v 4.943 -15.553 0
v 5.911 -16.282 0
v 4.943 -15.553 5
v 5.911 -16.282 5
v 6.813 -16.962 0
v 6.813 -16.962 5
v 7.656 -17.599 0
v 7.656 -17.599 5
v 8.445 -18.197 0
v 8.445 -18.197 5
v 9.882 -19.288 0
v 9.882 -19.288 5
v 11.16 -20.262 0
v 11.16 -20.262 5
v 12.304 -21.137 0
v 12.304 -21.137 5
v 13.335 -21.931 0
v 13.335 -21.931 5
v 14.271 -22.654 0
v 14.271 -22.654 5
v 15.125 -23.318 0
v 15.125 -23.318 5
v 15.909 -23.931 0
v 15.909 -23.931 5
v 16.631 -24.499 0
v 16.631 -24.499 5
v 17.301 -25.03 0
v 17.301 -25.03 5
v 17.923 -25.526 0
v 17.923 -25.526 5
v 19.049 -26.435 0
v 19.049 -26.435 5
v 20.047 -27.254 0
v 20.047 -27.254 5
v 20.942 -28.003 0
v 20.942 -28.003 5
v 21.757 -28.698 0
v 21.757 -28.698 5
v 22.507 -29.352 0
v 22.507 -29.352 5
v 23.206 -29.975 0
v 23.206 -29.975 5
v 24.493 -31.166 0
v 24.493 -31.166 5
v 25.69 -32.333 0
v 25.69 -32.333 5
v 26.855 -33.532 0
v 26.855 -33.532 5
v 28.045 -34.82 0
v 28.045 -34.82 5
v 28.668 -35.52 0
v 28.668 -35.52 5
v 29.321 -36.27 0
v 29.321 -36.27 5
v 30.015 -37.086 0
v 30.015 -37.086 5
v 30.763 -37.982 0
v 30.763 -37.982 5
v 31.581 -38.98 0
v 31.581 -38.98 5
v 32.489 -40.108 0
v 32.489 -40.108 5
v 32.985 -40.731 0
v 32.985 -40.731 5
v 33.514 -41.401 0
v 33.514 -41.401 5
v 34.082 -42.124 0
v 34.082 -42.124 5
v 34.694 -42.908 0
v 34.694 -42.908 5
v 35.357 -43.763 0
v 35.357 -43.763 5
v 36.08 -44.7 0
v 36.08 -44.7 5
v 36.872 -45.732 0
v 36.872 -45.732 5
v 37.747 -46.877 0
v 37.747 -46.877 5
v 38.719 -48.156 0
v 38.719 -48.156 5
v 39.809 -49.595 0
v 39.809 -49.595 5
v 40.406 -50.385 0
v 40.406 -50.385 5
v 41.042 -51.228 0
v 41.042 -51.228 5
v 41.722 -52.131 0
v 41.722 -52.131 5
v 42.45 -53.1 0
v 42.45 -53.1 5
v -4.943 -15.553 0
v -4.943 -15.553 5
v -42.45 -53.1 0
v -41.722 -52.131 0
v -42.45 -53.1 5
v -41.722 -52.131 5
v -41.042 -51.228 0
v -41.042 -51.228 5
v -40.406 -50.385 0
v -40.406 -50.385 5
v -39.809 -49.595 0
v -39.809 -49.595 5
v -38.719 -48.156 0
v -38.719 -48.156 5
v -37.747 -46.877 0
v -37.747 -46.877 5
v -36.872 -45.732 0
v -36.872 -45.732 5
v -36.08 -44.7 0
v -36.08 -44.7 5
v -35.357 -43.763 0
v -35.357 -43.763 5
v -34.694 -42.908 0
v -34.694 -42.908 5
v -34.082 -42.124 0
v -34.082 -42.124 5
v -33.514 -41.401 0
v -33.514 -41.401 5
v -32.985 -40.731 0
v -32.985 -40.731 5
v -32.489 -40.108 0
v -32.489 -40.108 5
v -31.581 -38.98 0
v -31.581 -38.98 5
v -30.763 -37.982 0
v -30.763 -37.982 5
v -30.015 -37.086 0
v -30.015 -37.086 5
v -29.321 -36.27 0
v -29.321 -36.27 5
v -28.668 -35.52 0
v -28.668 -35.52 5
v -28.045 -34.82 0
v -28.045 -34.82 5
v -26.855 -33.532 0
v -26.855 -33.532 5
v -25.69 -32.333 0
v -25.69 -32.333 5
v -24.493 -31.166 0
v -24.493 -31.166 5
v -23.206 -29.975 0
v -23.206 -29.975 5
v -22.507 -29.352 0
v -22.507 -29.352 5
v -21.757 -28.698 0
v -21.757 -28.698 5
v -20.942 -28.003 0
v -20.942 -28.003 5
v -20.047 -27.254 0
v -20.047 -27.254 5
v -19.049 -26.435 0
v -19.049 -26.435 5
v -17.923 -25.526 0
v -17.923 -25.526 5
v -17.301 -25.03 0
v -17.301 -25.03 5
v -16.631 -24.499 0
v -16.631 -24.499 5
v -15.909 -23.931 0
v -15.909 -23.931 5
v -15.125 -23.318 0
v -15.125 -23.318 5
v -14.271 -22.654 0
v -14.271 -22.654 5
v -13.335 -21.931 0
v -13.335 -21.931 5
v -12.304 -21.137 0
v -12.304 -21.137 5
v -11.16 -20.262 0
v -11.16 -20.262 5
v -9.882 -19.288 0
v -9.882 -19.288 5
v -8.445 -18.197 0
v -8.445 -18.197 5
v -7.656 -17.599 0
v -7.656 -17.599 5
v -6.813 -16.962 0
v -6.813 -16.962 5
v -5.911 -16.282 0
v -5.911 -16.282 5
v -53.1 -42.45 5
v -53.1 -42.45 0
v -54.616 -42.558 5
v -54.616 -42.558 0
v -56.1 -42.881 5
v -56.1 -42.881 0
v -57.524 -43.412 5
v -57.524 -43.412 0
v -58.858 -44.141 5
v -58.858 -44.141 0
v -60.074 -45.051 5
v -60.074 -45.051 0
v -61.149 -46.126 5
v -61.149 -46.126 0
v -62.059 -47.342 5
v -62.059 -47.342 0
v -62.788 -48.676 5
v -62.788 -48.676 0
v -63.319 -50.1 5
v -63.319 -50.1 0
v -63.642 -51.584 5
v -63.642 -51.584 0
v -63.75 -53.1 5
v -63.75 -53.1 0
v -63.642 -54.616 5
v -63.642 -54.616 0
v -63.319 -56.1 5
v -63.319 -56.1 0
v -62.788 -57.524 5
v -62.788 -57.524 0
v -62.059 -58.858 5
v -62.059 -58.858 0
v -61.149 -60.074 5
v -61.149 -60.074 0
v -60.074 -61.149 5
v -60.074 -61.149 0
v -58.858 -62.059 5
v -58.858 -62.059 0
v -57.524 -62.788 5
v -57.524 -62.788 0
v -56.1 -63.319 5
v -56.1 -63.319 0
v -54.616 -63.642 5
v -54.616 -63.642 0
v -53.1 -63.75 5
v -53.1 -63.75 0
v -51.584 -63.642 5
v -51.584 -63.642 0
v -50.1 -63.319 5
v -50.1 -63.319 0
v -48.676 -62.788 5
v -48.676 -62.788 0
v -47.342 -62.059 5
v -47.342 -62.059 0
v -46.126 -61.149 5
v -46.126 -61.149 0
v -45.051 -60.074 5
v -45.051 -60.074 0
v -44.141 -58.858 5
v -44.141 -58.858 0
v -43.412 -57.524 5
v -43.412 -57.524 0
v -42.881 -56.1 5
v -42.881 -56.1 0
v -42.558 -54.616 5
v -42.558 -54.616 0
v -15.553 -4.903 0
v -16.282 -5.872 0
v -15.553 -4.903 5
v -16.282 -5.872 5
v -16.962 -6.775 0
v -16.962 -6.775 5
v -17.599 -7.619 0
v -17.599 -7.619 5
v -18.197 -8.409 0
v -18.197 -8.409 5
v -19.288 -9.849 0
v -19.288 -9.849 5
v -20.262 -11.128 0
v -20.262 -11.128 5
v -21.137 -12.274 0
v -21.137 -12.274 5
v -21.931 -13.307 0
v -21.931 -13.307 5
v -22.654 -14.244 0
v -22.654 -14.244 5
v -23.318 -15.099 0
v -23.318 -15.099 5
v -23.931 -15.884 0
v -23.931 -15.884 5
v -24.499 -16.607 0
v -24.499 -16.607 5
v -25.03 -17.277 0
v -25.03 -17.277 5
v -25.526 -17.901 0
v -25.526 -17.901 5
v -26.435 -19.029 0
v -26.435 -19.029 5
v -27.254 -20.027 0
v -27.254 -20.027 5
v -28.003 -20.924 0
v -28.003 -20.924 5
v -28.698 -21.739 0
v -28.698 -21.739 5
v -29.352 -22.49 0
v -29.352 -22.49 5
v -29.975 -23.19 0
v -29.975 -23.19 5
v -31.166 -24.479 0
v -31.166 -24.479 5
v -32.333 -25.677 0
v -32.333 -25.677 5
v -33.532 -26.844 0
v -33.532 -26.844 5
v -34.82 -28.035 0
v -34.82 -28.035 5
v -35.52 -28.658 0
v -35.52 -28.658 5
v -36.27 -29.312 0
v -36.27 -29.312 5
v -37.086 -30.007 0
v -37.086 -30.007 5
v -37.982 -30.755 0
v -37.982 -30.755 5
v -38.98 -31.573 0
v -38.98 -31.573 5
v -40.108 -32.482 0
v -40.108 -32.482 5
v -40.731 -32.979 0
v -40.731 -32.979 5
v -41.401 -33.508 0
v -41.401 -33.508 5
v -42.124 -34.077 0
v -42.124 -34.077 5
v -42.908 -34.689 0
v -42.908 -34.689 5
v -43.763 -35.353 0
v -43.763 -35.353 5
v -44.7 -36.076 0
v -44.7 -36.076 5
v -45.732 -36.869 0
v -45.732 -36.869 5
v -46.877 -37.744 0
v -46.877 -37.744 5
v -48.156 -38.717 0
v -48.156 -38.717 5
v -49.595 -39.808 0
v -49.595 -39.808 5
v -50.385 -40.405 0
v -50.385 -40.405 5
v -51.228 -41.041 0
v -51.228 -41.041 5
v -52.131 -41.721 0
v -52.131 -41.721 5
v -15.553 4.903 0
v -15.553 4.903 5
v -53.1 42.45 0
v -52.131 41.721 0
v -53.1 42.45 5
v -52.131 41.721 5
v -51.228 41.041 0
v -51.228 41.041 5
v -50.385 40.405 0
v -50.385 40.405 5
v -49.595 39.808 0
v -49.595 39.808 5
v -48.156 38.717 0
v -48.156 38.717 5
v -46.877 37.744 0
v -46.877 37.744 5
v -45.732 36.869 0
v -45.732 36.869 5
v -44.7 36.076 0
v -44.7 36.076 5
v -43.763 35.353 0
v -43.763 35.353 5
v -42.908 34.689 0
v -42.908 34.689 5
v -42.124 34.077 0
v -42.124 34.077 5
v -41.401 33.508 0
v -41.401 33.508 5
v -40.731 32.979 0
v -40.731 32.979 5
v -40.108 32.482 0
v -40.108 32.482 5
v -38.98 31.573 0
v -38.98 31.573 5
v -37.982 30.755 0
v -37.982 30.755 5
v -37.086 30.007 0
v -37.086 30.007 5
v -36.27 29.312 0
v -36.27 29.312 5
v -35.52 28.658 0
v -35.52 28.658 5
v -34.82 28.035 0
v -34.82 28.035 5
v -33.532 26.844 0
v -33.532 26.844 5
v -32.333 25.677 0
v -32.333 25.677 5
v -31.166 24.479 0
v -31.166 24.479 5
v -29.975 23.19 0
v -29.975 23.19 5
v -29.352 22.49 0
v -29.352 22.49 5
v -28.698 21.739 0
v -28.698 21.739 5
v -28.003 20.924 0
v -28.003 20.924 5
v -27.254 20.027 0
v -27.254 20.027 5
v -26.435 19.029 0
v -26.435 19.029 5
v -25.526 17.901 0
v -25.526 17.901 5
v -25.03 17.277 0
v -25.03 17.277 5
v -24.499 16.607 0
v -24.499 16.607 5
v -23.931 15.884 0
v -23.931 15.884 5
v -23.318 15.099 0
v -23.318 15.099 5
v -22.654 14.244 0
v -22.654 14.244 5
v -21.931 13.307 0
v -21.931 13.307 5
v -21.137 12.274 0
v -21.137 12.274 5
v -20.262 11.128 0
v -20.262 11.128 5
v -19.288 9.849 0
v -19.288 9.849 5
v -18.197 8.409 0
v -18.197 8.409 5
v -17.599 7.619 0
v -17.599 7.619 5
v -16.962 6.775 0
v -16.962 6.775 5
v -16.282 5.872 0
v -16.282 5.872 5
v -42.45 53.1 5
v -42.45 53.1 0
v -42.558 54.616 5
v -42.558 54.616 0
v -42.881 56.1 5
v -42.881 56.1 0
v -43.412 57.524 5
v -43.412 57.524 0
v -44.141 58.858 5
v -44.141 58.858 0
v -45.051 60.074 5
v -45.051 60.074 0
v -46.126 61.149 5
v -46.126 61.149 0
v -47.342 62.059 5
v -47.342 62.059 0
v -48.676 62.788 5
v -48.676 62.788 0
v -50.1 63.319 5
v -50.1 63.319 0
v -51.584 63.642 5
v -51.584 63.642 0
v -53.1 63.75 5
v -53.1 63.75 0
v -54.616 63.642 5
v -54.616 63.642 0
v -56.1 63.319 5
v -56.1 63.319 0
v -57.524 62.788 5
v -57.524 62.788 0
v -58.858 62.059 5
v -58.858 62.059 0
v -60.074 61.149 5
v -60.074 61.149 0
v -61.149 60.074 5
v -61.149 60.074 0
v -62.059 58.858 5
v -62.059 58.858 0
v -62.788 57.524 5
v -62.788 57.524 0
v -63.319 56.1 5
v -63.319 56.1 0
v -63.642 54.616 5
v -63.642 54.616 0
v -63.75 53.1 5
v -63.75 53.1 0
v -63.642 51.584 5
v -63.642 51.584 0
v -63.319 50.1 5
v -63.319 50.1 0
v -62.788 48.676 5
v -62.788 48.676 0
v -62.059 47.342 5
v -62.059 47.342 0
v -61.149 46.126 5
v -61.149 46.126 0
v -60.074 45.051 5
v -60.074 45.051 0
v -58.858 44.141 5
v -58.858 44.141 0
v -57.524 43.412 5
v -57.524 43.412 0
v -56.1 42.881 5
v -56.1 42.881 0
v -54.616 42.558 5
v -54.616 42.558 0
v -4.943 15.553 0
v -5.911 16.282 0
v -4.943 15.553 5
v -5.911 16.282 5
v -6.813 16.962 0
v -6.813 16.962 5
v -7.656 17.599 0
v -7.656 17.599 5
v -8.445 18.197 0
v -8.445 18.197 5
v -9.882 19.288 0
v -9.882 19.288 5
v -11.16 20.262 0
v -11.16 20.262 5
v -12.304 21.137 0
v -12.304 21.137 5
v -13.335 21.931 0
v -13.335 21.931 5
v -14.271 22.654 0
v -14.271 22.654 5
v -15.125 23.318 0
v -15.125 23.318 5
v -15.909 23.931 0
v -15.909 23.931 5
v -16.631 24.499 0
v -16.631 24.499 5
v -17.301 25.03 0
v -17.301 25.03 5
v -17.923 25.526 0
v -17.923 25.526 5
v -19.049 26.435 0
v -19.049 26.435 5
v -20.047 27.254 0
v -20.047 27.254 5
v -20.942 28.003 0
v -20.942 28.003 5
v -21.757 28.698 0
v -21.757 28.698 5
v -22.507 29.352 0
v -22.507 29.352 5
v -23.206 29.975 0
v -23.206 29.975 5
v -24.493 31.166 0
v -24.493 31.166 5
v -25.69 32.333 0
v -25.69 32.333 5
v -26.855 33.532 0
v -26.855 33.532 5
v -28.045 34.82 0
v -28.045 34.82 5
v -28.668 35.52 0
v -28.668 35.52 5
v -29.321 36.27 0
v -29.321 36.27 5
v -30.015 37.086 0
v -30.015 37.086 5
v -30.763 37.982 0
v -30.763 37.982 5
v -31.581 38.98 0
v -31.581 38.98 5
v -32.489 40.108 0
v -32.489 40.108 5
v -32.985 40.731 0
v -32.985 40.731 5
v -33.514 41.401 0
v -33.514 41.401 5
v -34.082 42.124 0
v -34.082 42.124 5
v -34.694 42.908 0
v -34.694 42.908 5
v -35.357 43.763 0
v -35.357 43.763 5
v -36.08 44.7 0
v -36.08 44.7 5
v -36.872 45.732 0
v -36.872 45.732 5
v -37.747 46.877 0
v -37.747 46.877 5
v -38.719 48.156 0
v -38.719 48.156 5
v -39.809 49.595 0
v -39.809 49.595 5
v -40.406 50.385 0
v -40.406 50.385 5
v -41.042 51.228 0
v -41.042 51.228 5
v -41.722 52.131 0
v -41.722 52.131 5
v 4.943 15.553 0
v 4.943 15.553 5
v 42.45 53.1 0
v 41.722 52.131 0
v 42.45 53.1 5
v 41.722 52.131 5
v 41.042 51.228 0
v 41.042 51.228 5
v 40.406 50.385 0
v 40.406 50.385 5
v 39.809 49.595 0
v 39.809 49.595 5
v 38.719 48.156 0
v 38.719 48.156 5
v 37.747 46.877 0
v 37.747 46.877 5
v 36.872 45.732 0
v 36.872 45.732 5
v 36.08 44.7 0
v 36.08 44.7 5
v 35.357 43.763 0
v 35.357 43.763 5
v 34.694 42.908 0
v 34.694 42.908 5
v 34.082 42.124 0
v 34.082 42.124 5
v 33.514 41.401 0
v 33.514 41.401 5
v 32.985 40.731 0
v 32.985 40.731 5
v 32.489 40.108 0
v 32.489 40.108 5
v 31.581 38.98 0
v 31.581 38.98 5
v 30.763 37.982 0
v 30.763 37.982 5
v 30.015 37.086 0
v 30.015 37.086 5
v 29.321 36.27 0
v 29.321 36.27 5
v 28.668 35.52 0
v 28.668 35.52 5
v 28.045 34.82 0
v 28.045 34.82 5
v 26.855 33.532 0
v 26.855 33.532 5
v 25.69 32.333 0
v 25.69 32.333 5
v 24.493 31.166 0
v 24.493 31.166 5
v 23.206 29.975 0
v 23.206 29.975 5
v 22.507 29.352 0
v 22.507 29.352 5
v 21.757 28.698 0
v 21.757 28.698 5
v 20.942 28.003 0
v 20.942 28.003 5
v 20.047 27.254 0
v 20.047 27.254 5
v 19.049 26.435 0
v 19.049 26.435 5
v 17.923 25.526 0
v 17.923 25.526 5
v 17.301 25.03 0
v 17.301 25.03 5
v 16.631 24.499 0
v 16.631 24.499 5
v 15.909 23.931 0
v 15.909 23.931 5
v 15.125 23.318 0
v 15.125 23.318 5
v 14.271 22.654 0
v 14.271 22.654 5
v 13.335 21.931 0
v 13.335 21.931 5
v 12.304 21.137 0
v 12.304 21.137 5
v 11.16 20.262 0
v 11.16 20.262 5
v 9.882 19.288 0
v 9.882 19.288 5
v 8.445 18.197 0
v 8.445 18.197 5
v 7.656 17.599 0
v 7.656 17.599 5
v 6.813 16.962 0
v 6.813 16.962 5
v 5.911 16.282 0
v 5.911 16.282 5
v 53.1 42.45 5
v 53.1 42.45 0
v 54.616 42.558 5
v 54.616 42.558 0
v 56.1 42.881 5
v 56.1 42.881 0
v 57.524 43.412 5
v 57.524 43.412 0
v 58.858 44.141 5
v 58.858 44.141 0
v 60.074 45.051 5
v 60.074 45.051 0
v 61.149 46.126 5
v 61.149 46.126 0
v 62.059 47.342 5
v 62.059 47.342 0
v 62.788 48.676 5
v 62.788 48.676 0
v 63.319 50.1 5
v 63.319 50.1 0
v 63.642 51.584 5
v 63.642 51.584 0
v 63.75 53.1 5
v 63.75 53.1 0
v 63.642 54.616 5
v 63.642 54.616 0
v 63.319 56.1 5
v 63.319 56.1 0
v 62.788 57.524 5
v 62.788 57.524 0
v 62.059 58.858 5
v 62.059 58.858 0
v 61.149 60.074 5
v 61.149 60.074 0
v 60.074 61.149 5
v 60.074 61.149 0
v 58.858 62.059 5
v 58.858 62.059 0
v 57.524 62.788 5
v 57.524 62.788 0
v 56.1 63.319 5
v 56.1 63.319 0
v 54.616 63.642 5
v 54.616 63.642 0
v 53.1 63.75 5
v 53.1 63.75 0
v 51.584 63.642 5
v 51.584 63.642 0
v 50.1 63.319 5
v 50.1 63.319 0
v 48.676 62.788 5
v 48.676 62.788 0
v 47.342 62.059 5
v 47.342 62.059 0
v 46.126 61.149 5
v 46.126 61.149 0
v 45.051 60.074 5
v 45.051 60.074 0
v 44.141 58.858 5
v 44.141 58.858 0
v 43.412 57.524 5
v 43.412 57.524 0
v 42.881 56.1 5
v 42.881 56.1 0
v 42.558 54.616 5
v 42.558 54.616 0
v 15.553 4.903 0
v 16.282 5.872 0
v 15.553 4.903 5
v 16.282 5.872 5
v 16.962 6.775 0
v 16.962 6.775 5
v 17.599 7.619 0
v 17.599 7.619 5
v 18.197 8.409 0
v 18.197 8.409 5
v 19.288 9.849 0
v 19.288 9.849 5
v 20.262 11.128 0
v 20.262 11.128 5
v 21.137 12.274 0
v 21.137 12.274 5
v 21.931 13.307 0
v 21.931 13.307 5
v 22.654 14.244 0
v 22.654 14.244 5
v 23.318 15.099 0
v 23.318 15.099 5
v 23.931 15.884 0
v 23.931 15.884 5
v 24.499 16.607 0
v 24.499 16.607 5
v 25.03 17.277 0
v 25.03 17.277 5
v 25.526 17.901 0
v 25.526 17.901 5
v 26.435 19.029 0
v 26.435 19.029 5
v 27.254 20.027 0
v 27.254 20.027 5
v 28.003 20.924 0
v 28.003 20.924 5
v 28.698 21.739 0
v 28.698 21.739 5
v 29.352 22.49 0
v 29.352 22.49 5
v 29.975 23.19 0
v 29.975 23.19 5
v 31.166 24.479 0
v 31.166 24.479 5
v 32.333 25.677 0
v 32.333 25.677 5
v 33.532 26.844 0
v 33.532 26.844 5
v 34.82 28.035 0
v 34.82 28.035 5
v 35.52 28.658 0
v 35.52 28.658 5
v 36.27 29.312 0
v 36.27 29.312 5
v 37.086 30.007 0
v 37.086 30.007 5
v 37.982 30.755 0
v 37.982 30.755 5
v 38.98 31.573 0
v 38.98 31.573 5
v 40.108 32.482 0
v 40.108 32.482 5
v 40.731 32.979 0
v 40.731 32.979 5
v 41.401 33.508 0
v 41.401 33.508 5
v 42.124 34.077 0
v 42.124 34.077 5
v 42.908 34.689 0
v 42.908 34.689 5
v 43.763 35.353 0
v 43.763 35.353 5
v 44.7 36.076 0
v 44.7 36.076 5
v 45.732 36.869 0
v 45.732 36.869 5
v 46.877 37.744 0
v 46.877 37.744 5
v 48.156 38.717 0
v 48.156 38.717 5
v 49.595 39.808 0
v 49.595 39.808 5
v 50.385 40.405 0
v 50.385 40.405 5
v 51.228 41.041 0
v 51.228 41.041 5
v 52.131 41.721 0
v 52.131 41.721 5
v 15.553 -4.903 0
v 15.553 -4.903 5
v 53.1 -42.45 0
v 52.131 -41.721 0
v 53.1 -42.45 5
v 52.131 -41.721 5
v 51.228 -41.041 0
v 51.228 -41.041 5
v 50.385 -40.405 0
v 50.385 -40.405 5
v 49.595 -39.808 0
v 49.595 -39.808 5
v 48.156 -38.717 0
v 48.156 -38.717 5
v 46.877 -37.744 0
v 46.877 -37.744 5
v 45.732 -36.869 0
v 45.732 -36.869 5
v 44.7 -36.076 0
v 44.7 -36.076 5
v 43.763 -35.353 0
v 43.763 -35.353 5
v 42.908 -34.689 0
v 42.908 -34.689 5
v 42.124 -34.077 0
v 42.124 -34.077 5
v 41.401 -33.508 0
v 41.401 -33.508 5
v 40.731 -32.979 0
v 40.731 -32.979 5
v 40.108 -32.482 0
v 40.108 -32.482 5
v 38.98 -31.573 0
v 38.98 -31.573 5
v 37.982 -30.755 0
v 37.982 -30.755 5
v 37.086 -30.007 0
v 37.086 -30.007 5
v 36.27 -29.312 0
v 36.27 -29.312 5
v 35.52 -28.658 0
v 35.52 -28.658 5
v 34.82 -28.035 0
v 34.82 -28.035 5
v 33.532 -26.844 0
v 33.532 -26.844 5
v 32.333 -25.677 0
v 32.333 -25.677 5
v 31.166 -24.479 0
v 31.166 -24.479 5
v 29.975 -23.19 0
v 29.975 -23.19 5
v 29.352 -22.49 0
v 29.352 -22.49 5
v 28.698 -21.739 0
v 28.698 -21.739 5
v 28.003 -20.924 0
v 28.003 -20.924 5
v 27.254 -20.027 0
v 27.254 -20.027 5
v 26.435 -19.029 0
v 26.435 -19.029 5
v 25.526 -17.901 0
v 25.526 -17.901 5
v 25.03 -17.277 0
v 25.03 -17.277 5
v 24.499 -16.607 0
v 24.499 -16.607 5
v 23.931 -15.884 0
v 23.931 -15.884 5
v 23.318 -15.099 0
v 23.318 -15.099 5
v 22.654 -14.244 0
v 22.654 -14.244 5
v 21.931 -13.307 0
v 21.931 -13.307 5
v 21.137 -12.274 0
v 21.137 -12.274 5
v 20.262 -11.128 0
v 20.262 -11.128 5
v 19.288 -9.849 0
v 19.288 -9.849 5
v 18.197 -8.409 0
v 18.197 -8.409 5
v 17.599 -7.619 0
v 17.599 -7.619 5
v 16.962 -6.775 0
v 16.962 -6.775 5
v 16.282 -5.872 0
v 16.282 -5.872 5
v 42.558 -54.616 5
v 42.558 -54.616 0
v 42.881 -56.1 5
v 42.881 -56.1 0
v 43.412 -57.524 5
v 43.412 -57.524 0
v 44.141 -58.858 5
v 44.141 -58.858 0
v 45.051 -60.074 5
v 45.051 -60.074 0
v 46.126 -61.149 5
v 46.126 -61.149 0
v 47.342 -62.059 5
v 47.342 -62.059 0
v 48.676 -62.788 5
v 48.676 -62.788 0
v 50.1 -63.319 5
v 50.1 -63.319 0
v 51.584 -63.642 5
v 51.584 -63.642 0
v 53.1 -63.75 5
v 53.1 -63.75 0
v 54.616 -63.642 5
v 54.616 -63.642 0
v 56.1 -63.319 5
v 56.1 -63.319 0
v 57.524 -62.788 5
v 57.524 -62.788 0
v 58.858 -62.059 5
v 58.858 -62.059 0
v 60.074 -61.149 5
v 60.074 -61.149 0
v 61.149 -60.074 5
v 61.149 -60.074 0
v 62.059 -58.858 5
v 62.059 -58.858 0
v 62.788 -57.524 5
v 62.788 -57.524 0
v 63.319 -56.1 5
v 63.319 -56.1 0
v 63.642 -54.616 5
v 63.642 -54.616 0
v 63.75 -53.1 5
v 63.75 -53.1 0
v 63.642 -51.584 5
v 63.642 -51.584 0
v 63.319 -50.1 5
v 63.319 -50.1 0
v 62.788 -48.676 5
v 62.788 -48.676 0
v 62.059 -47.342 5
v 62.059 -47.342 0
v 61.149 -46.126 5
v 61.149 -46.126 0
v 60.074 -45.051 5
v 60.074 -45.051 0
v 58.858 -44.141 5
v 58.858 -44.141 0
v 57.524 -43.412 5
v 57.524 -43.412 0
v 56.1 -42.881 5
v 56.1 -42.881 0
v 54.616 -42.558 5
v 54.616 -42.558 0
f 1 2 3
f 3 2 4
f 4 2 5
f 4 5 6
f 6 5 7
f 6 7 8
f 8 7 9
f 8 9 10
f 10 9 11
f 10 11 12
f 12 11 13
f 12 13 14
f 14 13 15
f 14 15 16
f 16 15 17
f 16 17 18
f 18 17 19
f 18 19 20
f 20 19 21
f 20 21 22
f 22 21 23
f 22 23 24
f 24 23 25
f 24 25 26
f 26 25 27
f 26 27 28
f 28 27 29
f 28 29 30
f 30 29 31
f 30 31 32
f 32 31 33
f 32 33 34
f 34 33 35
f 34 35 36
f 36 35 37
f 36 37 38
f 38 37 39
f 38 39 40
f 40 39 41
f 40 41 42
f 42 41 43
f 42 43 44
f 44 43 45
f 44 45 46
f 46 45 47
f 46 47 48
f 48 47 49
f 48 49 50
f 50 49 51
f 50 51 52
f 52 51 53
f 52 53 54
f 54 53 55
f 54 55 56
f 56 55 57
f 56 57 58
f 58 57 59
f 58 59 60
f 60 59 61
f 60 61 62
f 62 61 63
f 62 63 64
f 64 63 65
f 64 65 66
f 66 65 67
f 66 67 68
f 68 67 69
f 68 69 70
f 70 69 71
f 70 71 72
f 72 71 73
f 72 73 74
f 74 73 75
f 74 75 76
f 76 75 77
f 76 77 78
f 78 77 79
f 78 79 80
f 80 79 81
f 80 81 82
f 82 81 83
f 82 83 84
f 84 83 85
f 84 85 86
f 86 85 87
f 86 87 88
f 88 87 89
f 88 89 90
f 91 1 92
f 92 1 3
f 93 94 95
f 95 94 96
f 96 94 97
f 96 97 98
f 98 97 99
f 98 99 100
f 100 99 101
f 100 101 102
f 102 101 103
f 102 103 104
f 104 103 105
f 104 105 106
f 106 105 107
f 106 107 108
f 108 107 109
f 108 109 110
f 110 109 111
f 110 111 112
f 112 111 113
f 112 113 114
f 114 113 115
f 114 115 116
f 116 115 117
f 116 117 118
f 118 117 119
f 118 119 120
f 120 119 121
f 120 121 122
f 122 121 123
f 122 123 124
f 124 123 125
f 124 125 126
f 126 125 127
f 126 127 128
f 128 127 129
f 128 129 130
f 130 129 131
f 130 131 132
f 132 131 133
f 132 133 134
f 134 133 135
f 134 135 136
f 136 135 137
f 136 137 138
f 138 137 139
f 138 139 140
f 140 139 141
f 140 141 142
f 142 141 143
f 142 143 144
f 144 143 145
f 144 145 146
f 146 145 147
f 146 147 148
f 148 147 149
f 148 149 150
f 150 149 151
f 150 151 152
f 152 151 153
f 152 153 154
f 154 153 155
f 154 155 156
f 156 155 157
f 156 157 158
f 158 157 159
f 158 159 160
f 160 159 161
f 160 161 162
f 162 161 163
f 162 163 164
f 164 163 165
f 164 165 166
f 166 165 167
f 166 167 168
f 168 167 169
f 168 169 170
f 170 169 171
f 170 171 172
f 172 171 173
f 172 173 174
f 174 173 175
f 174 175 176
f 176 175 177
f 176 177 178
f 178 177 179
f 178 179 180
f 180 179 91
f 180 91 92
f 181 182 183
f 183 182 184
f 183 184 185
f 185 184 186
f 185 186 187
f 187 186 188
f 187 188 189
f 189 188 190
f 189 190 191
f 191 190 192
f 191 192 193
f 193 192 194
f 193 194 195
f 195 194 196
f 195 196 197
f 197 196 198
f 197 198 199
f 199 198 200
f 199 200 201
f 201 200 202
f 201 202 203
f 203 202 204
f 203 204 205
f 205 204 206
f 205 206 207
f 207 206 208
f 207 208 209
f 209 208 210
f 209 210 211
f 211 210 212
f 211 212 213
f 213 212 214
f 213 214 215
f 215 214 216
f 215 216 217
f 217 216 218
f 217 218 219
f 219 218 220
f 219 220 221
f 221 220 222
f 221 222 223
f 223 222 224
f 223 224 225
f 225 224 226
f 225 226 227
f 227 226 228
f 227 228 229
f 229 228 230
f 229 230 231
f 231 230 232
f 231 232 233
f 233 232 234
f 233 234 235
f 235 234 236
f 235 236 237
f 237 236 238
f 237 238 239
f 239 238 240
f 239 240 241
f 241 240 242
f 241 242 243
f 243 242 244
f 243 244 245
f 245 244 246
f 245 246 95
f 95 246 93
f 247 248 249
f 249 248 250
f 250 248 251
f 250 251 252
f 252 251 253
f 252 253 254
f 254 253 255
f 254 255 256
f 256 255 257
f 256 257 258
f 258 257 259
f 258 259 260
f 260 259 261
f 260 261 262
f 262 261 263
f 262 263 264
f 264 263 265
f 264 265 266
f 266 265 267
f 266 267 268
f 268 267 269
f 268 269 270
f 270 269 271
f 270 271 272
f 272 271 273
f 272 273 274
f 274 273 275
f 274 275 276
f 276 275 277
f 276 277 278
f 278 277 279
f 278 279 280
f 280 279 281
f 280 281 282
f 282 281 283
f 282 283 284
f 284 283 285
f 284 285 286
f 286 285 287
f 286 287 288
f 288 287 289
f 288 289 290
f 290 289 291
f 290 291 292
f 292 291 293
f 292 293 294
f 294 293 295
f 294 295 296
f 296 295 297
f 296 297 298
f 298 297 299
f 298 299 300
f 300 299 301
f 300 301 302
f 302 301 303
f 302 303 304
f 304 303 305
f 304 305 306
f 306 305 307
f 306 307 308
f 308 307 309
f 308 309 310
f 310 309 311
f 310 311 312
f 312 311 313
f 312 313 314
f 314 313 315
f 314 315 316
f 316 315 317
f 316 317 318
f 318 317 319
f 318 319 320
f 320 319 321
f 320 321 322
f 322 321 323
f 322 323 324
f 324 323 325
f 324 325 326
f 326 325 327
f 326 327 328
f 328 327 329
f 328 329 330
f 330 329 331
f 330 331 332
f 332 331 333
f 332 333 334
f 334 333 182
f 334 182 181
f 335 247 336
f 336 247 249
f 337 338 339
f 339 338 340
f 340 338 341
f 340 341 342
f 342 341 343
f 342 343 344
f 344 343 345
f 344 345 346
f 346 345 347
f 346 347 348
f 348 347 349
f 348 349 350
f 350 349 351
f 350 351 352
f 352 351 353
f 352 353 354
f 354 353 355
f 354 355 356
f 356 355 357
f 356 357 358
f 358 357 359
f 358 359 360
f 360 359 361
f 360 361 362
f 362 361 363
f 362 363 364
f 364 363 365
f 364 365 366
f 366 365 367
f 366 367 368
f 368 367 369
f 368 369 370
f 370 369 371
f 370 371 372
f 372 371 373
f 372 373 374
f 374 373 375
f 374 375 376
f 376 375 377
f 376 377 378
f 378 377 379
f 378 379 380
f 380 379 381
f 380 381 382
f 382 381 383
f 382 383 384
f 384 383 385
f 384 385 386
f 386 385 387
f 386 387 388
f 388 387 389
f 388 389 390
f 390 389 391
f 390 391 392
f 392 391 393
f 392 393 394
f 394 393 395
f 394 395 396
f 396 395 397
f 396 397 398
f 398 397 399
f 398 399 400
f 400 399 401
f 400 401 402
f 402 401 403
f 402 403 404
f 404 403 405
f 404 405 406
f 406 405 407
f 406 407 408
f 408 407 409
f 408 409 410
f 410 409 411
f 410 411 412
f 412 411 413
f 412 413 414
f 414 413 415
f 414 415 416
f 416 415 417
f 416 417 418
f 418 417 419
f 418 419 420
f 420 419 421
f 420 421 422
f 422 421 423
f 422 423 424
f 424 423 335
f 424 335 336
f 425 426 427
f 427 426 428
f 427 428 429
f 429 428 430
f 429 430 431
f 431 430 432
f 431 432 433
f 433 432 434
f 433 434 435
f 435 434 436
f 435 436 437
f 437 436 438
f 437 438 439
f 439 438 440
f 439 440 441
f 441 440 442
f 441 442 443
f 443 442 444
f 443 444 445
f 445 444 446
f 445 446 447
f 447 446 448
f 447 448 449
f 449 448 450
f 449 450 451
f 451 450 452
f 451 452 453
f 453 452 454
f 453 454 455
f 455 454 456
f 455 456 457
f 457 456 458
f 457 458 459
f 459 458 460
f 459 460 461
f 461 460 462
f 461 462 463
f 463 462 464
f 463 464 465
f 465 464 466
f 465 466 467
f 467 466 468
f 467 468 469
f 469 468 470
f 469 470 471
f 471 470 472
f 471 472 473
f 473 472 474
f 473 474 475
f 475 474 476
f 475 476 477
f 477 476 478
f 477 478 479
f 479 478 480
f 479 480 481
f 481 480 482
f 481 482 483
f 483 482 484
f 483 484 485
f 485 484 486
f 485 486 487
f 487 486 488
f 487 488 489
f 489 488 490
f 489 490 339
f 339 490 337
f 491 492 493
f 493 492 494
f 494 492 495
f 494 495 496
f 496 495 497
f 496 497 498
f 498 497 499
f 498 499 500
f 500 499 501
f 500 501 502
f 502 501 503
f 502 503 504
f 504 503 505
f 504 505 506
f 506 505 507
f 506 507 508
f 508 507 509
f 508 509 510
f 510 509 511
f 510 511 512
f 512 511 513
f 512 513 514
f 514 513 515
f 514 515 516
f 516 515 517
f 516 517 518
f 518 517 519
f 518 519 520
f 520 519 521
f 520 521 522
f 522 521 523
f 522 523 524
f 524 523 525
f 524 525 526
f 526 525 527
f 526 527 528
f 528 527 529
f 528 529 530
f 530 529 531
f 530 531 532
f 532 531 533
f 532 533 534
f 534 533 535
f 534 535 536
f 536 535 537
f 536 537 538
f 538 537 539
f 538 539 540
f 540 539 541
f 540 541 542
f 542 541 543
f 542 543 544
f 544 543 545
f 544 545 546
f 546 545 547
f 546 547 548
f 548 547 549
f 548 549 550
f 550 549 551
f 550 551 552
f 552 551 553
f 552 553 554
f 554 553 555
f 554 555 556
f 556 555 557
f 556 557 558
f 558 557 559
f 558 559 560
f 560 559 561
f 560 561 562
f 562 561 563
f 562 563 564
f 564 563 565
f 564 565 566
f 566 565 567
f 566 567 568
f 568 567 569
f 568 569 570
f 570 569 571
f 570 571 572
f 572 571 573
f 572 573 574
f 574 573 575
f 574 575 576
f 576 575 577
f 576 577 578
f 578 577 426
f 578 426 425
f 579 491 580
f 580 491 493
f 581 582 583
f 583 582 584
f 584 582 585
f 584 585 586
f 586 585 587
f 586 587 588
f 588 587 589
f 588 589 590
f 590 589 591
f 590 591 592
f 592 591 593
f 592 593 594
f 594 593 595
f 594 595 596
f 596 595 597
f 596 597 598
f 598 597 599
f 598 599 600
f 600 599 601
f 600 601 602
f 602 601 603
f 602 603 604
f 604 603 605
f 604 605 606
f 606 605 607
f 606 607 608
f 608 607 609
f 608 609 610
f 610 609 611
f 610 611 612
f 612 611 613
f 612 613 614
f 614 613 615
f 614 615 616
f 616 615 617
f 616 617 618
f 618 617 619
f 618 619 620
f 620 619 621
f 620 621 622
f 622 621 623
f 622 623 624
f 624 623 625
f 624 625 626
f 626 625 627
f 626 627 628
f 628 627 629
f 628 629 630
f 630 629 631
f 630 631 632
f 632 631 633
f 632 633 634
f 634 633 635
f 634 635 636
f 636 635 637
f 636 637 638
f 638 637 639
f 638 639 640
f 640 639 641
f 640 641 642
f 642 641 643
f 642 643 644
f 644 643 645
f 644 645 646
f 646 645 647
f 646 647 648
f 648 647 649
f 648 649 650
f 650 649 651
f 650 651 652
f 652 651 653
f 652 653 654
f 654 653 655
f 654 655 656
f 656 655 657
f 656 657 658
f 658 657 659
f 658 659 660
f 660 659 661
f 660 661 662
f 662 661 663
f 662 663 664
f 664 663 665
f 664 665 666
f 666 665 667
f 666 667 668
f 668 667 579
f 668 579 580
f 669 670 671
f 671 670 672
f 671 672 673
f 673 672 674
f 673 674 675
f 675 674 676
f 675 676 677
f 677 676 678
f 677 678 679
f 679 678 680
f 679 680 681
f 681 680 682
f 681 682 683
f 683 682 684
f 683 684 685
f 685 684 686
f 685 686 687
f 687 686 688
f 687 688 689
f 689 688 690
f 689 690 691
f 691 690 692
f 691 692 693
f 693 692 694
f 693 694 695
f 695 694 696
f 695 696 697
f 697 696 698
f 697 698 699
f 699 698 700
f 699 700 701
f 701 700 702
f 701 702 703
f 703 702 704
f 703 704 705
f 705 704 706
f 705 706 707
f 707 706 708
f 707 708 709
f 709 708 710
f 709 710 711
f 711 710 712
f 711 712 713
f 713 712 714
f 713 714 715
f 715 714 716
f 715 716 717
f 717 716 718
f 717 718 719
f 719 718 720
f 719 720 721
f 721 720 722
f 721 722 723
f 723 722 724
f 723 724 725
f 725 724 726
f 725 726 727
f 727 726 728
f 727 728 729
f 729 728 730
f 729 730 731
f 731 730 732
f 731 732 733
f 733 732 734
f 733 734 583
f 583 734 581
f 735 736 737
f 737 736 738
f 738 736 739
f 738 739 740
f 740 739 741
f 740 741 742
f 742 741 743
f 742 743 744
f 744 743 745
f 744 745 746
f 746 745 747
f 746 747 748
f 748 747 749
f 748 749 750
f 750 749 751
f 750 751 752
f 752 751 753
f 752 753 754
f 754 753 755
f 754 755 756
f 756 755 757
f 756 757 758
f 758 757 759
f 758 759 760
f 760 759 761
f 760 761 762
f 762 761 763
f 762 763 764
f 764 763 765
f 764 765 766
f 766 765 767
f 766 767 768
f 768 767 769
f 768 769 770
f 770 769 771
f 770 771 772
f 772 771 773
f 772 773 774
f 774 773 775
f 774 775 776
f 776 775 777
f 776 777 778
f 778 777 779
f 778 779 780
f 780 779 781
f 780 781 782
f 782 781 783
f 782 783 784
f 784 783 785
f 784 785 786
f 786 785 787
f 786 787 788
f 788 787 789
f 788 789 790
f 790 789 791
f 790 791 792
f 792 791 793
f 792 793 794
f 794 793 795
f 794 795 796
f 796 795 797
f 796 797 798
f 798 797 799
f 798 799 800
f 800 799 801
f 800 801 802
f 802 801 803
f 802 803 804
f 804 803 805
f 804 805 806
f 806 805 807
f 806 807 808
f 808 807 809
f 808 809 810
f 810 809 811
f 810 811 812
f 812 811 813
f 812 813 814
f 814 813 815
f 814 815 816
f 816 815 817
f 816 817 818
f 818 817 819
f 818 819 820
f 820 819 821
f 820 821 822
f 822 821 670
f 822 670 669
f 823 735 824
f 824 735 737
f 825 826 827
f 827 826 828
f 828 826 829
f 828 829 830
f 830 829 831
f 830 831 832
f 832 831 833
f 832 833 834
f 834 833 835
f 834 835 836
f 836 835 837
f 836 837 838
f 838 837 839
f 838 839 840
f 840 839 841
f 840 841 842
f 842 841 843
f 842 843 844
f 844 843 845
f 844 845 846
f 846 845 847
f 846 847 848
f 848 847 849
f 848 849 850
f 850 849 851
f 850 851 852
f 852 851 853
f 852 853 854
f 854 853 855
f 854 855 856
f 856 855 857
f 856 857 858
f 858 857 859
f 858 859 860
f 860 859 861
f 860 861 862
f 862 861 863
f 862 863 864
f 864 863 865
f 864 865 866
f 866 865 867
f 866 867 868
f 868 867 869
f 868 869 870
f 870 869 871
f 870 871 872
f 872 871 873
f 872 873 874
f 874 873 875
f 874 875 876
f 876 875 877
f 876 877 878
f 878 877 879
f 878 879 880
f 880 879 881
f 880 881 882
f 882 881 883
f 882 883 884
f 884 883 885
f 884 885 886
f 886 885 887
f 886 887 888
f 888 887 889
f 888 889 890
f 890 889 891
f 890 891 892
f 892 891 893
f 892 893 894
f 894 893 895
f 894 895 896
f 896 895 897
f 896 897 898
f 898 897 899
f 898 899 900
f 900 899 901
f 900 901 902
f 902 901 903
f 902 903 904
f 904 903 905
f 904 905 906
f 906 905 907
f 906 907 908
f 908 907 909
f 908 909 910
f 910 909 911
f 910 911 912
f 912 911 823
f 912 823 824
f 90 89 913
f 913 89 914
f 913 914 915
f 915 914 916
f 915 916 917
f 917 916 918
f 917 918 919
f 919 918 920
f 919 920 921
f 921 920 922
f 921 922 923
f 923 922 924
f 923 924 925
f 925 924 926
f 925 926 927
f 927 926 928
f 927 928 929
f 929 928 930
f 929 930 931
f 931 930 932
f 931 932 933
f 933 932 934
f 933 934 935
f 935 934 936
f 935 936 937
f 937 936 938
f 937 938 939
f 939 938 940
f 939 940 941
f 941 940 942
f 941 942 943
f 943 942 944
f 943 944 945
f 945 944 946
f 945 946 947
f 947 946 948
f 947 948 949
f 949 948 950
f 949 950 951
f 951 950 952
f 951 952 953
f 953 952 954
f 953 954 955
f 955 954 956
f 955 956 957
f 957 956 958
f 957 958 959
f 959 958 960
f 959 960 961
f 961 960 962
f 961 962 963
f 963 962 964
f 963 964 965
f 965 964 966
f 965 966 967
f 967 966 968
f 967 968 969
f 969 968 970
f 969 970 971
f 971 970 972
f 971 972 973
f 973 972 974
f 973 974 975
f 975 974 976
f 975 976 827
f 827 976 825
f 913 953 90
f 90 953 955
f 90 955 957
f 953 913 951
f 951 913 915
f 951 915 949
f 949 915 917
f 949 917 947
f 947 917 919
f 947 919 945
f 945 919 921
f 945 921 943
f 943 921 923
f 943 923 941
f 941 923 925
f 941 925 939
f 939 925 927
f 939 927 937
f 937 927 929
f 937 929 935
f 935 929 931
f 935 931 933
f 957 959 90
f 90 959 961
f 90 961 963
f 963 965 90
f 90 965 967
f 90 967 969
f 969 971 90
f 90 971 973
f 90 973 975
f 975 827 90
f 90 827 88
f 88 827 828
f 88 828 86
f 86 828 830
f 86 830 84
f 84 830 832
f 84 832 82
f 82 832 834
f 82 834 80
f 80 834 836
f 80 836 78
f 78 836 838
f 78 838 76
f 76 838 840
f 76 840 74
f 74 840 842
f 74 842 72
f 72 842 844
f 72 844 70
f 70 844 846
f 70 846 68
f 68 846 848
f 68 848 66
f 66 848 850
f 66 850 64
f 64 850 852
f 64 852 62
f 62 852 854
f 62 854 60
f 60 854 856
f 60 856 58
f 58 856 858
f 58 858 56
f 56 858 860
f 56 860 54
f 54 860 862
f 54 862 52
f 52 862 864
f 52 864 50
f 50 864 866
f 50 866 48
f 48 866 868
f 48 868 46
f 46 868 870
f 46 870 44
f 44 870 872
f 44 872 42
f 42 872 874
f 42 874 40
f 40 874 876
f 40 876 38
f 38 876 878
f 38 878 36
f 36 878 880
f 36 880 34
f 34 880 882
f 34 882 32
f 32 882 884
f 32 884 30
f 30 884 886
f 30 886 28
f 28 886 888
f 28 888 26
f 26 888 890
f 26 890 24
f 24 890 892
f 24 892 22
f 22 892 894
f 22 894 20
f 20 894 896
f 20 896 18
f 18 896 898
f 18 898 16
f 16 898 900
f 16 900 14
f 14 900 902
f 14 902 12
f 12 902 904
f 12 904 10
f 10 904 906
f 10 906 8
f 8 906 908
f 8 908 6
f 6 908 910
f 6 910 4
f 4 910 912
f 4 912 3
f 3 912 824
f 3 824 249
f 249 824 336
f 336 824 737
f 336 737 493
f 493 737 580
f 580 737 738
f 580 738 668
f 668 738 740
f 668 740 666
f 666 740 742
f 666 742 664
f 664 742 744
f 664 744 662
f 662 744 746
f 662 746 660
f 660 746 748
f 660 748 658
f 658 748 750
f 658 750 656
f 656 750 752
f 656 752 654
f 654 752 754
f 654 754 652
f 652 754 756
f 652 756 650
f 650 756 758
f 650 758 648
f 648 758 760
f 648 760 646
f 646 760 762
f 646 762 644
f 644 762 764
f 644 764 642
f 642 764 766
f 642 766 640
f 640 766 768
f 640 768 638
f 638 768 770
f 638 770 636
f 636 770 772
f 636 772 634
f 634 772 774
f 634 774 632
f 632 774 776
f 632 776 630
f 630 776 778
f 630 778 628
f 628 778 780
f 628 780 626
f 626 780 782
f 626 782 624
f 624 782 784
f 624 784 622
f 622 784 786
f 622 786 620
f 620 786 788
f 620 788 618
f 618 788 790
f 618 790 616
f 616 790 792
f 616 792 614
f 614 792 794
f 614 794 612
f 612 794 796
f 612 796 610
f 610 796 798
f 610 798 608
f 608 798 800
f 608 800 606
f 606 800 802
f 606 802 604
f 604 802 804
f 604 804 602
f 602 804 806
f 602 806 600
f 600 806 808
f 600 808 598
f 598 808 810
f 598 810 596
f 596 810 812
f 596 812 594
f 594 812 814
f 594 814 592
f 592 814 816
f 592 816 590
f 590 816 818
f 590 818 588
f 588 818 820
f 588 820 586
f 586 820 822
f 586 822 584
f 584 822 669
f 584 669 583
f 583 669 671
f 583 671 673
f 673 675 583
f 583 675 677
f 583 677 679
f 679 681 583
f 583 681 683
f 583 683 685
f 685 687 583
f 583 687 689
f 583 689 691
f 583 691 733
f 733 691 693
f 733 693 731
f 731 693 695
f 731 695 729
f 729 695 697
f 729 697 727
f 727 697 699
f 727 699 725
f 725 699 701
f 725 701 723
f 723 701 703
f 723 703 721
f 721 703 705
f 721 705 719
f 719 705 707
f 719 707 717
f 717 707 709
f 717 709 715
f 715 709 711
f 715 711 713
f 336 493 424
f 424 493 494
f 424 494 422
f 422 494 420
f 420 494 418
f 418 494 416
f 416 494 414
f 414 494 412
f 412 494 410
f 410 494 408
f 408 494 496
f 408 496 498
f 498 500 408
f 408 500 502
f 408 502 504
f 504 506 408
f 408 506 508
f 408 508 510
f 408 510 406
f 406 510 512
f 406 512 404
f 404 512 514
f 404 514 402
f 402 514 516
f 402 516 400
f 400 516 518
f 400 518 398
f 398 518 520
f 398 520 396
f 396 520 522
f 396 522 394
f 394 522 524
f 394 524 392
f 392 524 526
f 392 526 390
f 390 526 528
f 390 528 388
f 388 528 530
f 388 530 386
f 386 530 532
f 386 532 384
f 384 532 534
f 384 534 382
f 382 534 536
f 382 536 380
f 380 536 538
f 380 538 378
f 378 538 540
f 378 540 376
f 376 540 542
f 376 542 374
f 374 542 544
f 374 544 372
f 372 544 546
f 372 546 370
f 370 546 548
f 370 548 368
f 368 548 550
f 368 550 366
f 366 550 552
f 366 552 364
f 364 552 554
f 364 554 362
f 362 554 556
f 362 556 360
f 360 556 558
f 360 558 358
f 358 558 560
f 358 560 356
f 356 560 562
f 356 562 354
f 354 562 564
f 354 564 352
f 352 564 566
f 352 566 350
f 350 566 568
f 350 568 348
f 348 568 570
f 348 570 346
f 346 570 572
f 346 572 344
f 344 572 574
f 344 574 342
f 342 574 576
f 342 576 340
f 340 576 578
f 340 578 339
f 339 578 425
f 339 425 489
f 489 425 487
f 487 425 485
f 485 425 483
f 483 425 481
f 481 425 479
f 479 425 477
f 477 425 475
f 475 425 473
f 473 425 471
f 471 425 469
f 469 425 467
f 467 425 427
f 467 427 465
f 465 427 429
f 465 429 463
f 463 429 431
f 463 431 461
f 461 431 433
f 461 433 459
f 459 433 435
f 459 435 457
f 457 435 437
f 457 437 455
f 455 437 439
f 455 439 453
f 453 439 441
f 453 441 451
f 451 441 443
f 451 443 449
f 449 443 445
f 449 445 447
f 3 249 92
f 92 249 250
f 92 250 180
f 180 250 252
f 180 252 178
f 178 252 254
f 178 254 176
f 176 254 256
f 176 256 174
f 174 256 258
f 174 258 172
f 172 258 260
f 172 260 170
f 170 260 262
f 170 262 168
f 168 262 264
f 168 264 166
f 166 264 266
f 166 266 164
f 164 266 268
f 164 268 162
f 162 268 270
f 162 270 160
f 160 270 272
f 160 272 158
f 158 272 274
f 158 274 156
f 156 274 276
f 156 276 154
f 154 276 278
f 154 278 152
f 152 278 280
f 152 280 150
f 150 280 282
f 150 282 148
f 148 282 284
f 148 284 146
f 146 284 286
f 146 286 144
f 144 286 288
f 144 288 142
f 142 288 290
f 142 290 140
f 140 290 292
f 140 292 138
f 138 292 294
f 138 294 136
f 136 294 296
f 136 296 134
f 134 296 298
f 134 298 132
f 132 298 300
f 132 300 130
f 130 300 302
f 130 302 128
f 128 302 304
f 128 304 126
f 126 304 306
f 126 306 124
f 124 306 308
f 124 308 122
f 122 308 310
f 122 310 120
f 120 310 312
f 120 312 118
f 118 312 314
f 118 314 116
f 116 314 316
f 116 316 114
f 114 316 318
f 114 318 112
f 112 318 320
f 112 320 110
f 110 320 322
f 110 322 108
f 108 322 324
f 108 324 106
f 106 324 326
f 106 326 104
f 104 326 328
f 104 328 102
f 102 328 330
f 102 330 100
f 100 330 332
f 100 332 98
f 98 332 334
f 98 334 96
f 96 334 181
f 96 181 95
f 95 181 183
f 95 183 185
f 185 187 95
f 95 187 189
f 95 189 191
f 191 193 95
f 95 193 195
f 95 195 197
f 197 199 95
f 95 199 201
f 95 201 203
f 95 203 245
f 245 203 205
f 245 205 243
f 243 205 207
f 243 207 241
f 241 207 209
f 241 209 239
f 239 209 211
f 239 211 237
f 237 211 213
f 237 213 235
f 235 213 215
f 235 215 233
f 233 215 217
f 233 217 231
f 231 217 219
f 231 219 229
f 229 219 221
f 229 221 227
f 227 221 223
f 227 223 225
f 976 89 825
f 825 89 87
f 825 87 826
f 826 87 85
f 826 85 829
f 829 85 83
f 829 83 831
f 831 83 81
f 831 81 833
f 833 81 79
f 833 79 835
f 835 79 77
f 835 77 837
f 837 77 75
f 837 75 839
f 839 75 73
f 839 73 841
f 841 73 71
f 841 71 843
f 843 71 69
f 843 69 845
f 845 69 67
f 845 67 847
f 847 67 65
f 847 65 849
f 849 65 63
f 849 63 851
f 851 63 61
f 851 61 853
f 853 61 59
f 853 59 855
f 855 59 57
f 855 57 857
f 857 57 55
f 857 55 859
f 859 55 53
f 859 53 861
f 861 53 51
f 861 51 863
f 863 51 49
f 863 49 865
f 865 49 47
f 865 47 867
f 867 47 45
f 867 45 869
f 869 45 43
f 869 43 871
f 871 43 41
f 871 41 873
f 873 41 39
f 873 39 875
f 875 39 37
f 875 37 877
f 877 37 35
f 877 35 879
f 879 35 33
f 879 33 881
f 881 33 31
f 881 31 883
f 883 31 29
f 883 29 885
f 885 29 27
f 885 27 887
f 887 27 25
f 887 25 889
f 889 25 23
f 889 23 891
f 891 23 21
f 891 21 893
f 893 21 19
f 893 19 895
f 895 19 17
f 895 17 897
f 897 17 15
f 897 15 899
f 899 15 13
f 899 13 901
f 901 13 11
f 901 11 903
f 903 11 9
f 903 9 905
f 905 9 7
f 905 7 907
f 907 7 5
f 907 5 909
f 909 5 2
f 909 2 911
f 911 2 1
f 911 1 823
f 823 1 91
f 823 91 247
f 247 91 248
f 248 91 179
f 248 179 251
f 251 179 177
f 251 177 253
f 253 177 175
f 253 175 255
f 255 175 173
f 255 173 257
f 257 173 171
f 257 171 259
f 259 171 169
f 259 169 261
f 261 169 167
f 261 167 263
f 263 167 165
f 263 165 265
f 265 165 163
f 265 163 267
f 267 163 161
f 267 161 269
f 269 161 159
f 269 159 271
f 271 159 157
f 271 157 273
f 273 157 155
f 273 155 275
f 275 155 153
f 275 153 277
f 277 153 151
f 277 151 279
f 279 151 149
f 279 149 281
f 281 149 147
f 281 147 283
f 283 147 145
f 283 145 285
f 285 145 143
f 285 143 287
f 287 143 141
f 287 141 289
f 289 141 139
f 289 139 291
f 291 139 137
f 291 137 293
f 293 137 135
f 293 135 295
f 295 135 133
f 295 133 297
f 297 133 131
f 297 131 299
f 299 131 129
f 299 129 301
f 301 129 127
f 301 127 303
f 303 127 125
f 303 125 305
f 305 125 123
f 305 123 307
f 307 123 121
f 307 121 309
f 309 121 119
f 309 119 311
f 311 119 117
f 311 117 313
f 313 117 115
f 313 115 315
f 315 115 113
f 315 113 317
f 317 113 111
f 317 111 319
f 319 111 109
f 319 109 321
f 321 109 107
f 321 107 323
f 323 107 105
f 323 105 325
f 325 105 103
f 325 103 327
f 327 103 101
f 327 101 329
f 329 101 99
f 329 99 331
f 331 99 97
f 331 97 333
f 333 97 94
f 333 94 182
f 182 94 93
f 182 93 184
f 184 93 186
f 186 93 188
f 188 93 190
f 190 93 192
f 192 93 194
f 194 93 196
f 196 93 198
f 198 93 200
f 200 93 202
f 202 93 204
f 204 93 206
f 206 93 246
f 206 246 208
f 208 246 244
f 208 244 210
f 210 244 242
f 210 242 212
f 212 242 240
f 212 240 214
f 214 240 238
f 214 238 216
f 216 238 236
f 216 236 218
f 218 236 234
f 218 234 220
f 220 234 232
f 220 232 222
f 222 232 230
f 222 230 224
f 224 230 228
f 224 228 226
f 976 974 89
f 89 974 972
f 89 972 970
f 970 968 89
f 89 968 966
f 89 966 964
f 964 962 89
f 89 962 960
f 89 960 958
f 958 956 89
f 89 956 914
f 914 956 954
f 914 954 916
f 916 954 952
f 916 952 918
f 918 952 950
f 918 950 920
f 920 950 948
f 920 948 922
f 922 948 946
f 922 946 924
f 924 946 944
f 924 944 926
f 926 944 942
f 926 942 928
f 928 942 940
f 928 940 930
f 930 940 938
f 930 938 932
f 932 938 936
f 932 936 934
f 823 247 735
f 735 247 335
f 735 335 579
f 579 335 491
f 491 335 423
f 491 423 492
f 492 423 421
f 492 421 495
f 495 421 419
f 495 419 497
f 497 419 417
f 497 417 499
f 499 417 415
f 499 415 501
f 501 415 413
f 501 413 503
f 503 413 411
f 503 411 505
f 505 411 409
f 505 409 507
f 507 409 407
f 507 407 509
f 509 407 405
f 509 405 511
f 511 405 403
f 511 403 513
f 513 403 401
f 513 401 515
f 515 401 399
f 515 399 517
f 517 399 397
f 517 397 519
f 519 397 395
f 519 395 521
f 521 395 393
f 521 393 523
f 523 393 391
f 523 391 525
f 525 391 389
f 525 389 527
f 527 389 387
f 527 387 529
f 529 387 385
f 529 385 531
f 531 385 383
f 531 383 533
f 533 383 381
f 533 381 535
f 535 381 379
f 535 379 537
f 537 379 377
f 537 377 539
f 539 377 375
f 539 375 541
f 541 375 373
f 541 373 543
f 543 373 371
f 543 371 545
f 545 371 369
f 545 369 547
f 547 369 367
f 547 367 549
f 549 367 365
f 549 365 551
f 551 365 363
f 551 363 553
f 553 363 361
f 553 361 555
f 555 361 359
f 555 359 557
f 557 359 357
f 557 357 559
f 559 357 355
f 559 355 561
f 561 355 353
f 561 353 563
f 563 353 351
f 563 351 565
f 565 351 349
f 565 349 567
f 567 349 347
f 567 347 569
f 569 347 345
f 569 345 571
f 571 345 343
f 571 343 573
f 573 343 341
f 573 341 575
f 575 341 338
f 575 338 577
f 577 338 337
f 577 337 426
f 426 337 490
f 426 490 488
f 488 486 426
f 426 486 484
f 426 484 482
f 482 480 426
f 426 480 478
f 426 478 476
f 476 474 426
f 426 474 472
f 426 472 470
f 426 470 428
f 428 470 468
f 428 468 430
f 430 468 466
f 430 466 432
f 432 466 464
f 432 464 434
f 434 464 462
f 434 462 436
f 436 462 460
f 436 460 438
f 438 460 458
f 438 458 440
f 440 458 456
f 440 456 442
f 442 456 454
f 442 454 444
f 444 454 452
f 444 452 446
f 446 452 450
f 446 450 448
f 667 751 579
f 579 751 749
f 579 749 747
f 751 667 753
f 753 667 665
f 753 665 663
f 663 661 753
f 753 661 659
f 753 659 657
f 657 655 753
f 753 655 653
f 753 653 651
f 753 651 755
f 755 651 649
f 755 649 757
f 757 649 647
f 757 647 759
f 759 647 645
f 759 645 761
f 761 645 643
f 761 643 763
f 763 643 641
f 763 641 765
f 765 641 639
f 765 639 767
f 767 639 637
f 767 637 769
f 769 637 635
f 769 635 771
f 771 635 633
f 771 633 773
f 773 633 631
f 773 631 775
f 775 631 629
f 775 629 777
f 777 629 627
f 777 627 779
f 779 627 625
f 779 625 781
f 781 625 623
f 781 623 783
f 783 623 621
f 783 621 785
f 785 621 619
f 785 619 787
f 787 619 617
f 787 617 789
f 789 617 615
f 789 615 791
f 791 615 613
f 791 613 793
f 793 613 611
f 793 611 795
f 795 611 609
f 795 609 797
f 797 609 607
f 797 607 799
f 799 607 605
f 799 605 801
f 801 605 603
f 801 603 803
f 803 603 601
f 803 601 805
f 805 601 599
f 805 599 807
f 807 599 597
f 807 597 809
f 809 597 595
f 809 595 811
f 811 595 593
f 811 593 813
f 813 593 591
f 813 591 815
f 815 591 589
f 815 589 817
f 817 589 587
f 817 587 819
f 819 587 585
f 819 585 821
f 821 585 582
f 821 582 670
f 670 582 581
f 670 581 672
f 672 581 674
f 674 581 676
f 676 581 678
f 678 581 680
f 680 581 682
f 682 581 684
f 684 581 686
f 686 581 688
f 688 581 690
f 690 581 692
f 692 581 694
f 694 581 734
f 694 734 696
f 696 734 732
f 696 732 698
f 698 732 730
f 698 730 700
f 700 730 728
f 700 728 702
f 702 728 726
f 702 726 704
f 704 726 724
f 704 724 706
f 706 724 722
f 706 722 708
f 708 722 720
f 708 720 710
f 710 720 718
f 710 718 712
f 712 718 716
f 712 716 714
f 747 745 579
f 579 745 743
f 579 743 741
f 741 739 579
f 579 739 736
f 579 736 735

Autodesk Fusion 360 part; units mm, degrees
sketch "Esboço1" plane through (0, 0, 0) normal (0, 0, 1) x (1, 0, 0)
  circle A0 centre (-53.1, 53.1) radius 10.65
  circle A1 centre (53.1, 53.1) radius 10.65
  circle A2 centre (-53.1, -53.1) radius 10.65
  circle A3 centre (53.1, -53.1) radius 10.65
  line L0 (0, 53.1) -> (0, -53.1) construction
  line L1 (-53.1, 0) -> (53.1, 0) construction
  line L2 (-53.1, -53.1) -> (-15.5526, -15.5526) construction
  line L3 (53.1, -53.1) -> (15.5526, -15.5526) construction
  line L4 (53.1, 53.1) -> (15.5526, 15.5526) construction
  line L5 (9.5526, -15.5526) -> (-9.5526, -15.5526)
  line L6 (-15.5526, -9.5526) -> (-15.5526, 9.5526)
  line L7 (-9.5526, 15.5526) -> (9.5526, 15.5526)
  line L8 (15.5526, 9.5526) -> (15.5526, -9.5526)
  line L9 (15.5526, -15.5526) -> (-15.5526, 15.5526) construction
  line L10 (-15.5526, -15.5526) -> (15.5526, 15.5526) construction
  line L11 (-42.45, 53.1) -> (-4.9431, 15.5526) construction
  line L12 (-53.1, 42.45) -> (-15.5526, 4.9026) construction
  line L13 (-23.6965, 34.3263) -> (-29.0114, 29.0114) construction
  line L14 (-34.3263, 23.6763) -> (-29.0114, 29.0114) construction
  spline S0 degree 2 poles (-42.45, 53.1) (-26.354, 31.6689) (-4.9431, 15.5526) knots 0 0 0 5.336996 5.336996 5.336996 weights 1 3 1
  spline S1 degree 2 poles (-53.1, 42.45) (-31.6689, 26.3439) (-15.5526, 4.9026) knots 0 0 0 5.339953 5.339953 5.339953 weights 1 3 1
  arc A4 (-9.5526, 15.5526) -> (-15.5526, 9.5526) centre (-9.5526, 9.5526) ccw
  spline S2 degree 2 poles (42.45, 53.1) (26.354, 31.6689) (4.9431, 15.5526) knots 0 0 0 5.336996 5.336996 5.336996 weights 1 3 1
  spline S3 degree 2 poles (53.1, 42.45) (31.6689, 26.3439) (15.5526, 4.9026) knots 0 0 0 5.339953 5.339953 5.339953 weights 1 3 1
  spline S4 degree 2 poles (-53.1, -42.45) (-31.6689, -26.3439) (-15.5526, -4.9026) knots 0 0 0 5.339953 5.339953 5.339953 weights 1 3 1
  spline S5 degree 2 poles (-42.45, -53.1) (-26.354, -31.6689) (-4.9431, -15.5526) knots 0 0 0 5.336996 5.336996 5.336996 weights 1 3 1
  spline S6 degree 2 poles (42.45, -53.1) (26.354, -31.6689) (4.9431, -15.5526) knots 0 0 0 5.336996 5.336996 5.336996 weights 1 3 1
  spline S7 degree 2 poles (53.1, -42.45) (31.6689, -26.3439) (15.5526, -4.9026) knots 0 0 0 5.339953 5.339953 5.339953 weights 1 3 1
  arc A5 (15.5526, 9.5526) -> (9.5526, 15.5526) centre (9.5526, 9.5526) ccw
  arc A6 (-15.5526, -9.5526) -> (-9.5526, -15.5526) centre (-9.5526, -9.5526) ccw
  arc A7 (9.5526, -15.5526) -> (15.5526, -9.5526) centre (9.5526, -9.5526) ccw
  dimension "d1" = 106.2
  dimension "d2" = 106.2
  dimension "d3" = 21.3
  dimension "d4" = 21.3
  dimension "d5" = 21.3
  dimension "d6" = 21.3
  dimension "d12" = 6
  dimension "d13" = 106.2
  dimension "d20" = 6
  dimension "d21" = 6
  dimension "d22" = 6
extrude "Extrusão1" add sketch "Esboço1" along normal blind 5
equation "d10 = 0.75"
equation "d11 = 0.75"
equation "d14 = d10"
equation "d15 = d11"
equation "d16 = d11"
equation "d17 = d10"
equation "d18 = d14"
equation "d19 = d15"
